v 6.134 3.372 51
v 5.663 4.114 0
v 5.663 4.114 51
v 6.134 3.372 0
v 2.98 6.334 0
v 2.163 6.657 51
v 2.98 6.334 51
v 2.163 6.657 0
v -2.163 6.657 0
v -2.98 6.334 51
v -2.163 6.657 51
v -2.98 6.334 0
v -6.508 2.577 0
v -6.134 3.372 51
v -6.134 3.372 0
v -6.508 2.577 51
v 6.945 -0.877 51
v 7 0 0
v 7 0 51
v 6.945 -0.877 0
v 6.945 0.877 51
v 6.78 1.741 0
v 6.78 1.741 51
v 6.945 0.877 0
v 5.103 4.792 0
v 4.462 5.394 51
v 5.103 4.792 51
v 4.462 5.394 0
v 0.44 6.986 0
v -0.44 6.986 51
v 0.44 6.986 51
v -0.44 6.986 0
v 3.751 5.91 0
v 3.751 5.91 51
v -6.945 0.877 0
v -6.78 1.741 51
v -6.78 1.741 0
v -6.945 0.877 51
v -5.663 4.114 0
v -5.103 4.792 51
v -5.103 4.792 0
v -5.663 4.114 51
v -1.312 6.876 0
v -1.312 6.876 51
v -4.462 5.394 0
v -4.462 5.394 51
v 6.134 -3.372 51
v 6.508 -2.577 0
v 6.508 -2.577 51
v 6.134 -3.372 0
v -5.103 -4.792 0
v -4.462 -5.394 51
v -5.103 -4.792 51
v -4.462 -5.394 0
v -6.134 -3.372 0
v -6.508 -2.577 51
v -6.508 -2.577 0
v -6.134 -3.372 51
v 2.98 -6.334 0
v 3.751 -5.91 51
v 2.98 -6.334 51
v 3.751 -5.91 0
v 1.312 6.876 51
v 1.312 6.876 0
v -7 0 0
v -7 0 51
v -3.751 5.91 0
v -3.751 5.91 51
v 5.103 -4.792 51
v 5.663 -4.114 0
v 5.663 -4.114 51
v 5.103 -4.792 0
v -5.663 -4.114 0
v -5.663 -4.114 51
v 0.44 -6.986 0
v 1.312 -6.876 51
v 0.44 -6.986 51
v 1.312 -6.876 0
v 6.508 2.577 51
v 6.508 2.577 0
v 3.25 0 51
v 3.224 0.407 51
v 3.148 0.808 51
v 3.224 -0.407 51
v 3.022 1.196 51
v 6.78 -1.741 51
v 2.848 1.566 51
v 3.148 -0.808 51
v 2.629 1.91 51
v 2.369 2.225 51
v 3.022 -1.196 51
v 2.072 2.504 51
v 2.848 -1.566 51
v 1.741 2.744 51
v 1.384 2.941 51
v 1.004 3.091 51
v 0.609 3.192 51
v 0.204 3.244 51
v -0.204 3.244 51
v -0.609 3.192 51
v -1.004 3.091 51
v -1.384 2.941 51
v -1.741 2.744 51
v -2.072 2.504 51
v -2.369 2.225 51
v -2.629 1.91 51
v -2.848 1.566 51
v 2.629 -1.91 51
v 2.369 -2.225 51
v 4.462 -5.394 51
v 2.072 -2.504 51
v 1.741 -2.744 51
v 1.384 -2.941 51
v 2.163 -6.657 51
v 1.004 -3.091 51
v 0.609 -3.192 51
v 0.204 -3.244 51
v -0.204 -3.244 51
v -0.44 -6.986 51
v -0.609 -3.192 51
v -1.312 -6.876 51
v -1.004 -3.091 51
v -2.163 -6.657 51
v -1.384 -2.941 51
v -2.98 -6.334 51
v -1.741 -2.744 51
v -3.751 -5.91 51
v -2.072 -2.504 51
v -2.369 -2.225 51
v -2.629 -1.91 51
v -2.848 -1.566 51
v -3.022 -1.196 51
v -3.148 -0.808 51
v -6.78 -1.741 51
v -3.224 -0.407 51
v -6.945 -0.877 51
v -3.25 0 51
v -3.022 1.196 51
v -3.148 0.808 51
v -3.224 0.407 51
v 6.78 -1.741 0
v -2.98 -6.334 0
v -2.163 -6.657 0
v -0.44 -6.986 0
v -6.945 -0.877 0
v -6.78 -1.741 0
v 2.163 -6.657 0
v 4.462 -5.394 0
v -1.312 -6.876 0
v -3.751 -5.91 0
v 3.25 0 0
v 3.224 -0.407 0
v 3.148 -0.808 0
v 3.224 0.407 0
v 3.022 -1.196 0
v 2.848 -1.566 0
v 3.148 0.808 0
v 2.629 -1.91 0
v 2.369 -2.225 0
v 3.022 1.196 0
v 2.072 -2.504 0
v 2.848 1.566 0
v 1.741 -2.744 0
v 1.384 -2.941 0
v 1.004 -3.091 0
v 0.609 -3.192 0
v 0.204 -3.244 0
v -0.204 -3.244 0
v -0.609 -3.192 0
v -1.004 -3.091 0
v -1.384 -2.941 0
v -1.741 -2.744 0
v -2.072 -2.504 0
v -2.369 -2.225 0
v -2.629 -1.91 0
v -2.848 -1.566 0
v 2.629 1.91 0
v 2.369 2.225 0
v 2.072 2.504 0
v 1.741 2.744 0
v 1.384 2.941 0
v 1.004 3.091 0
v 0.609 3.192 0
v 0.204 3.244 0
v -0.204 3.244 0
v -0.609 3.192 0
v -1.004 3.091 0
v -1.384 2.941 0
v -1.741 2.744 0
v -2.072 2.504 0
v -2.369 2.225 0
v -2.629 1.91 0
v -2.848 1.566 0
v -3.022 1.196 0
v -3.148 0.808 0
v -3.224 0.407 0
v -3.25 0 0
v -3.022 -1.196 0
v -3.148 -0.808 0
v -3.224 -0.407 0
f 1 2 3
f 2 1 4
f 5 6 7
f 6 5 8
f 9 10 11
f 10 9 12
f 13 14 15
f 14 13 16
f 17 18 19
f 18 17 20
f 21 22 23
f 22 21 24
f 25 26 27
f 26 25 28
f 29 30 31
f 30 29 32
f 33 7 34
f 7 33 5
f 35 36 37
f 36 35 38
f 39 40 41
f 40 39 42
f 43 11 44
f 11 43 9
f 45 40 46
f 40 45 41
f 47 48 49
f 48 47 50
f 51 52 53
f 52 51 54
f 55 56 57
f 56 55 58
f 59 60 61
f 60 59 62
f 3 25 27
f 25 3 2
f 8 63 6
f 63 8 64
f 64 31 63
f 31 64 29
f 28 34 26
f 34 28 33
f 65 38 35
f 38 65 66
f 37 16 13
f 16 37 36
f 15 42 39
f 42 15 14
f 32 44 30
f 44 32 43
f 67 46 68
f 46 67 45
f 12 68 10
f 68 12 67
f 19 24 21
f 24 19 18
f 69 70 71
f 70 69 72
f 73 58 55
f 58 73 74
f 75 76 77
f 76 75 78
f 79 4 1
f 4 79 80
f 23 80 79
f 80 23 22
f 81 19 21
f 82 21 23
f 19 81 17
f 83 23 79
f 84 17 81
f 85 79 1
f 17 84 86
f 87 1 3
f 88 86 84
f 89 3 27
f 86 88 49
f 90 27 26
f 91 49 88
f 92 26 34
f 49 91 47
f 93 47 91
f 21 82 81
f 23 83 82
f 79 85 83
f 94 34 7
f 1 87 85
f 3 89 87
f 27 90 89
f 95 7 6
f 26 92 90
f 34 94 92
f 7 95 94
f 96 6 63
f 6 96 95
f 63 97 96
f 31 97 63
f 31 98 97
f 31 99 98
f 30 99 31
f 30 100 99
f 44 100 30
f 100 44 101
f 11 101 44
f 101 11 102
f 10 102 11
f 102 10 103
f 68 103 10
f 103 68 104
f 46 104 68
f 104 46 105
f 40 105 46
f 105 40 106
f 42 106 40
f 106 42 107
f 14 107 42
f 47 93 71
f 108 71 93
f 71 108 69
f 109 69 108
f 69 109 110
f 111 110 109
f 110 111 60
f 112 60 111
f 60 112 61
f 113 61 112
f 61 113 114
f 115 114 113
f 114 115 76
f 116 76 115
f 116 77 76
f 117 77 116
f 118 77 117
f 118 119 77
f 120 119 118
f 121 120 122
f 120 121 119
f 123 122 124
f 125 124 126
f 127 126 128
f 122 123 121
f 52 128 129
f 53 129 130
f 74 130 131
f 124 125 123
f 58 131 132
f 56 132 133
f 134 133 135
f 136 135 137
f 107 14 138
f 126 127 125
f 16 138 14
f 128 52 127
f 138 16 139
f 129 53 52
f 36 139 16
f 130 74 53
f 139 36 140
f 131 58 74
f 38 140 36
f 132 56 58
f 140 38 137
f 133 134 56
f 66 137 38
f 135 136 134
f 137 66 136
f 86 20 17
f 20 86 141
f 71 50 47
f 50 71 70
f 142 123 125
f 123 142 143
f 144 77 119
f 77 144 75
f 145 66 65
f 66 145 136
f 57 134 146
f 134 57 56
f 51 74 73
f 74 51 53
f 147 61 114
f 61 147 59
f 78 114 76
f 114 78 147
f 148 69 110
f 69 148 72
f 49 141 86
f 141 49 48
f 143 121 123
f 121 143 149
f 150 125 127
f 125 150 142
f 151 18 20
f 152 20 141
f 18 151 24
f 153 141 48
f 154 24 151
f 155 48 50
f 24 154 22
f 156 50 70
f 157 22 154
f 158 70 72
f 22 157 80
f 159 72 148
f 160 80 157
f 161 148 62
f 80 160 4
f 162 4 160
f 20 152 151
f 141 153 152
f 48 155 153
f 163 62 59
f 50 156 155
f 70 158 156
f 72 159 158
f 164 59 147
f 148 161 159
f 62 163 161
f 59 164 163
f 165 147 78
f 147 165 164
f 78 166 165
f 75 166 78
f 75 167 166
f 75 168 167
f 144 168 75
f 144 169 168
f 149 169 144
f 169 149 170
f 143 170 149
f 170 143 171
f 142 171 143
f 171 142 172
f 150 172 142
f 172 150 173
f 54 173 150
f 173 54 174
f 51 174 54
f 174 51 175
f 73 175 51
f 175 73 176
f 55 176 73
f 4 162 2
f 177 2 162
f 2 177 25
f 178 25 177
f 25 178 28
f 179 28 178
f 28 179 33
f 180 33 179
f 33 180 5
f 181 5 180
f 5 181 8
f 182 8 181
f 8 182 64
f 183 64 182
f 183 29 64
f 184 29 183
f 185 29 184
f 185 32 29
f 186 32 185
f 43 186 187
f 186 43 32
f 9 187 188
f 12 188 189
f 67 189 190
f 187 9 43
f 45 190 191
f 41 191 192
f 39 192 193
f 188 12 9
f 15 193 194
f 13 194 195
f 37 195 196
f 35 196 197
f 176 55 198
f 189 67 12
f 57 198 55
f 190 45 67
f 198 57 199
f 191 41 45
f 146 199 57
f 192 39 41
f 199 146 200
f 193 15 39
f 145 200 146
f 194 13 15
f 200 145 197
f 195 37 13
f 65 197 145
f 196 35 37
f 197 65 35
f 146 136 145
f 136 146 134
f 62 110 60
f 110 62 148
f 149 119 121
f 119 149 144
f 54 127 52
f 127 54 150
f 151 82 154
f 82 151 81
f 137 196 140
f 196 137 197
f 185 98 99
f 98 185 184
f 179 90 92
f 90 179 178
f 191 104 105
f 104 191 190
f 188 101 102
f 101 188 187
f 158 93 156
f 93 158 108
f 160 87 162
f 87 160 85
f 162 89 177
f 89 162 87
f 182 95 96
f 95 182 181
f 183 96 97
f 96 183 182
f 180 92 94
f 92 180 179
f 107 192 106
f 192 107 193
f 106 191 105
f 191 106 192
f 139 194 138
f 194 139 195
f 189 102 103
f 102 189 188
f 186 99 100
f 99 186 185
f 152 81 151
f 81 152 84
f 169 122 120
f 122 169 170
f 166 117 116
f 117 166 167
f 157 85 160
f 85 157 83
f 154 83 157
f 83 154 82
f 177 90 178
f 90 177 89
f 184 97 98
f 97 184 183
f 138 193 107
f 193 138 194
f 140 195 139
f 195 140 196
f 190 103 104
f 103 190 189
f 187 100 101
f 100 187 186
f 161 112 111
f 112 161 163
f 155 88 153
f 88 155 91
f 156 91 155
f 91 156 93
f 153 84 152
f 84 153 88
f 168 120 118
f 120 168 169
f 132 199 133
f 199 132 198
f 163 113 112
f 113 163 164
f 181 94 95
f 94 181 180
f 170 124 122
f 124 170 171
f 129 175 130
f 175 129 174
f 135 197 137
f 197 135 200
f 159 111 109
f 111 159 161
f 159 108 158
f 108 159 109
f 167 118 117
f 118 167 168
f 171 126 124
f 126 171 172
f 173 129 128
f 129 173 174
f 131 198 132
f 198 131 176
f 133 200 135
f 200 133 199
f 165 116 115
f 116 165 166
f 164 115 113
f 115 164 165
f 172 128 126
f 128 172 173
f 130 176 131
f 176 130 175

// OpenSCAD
$fn = 50;


difference() {
	union() {
		cylinder(h = 51, r = 7.0000000000);
	}
	union() {
		translate(v = [0, 0, -100]) {
			cylinder(h = 200, r = 3.2500000000);
		}
	}
}
